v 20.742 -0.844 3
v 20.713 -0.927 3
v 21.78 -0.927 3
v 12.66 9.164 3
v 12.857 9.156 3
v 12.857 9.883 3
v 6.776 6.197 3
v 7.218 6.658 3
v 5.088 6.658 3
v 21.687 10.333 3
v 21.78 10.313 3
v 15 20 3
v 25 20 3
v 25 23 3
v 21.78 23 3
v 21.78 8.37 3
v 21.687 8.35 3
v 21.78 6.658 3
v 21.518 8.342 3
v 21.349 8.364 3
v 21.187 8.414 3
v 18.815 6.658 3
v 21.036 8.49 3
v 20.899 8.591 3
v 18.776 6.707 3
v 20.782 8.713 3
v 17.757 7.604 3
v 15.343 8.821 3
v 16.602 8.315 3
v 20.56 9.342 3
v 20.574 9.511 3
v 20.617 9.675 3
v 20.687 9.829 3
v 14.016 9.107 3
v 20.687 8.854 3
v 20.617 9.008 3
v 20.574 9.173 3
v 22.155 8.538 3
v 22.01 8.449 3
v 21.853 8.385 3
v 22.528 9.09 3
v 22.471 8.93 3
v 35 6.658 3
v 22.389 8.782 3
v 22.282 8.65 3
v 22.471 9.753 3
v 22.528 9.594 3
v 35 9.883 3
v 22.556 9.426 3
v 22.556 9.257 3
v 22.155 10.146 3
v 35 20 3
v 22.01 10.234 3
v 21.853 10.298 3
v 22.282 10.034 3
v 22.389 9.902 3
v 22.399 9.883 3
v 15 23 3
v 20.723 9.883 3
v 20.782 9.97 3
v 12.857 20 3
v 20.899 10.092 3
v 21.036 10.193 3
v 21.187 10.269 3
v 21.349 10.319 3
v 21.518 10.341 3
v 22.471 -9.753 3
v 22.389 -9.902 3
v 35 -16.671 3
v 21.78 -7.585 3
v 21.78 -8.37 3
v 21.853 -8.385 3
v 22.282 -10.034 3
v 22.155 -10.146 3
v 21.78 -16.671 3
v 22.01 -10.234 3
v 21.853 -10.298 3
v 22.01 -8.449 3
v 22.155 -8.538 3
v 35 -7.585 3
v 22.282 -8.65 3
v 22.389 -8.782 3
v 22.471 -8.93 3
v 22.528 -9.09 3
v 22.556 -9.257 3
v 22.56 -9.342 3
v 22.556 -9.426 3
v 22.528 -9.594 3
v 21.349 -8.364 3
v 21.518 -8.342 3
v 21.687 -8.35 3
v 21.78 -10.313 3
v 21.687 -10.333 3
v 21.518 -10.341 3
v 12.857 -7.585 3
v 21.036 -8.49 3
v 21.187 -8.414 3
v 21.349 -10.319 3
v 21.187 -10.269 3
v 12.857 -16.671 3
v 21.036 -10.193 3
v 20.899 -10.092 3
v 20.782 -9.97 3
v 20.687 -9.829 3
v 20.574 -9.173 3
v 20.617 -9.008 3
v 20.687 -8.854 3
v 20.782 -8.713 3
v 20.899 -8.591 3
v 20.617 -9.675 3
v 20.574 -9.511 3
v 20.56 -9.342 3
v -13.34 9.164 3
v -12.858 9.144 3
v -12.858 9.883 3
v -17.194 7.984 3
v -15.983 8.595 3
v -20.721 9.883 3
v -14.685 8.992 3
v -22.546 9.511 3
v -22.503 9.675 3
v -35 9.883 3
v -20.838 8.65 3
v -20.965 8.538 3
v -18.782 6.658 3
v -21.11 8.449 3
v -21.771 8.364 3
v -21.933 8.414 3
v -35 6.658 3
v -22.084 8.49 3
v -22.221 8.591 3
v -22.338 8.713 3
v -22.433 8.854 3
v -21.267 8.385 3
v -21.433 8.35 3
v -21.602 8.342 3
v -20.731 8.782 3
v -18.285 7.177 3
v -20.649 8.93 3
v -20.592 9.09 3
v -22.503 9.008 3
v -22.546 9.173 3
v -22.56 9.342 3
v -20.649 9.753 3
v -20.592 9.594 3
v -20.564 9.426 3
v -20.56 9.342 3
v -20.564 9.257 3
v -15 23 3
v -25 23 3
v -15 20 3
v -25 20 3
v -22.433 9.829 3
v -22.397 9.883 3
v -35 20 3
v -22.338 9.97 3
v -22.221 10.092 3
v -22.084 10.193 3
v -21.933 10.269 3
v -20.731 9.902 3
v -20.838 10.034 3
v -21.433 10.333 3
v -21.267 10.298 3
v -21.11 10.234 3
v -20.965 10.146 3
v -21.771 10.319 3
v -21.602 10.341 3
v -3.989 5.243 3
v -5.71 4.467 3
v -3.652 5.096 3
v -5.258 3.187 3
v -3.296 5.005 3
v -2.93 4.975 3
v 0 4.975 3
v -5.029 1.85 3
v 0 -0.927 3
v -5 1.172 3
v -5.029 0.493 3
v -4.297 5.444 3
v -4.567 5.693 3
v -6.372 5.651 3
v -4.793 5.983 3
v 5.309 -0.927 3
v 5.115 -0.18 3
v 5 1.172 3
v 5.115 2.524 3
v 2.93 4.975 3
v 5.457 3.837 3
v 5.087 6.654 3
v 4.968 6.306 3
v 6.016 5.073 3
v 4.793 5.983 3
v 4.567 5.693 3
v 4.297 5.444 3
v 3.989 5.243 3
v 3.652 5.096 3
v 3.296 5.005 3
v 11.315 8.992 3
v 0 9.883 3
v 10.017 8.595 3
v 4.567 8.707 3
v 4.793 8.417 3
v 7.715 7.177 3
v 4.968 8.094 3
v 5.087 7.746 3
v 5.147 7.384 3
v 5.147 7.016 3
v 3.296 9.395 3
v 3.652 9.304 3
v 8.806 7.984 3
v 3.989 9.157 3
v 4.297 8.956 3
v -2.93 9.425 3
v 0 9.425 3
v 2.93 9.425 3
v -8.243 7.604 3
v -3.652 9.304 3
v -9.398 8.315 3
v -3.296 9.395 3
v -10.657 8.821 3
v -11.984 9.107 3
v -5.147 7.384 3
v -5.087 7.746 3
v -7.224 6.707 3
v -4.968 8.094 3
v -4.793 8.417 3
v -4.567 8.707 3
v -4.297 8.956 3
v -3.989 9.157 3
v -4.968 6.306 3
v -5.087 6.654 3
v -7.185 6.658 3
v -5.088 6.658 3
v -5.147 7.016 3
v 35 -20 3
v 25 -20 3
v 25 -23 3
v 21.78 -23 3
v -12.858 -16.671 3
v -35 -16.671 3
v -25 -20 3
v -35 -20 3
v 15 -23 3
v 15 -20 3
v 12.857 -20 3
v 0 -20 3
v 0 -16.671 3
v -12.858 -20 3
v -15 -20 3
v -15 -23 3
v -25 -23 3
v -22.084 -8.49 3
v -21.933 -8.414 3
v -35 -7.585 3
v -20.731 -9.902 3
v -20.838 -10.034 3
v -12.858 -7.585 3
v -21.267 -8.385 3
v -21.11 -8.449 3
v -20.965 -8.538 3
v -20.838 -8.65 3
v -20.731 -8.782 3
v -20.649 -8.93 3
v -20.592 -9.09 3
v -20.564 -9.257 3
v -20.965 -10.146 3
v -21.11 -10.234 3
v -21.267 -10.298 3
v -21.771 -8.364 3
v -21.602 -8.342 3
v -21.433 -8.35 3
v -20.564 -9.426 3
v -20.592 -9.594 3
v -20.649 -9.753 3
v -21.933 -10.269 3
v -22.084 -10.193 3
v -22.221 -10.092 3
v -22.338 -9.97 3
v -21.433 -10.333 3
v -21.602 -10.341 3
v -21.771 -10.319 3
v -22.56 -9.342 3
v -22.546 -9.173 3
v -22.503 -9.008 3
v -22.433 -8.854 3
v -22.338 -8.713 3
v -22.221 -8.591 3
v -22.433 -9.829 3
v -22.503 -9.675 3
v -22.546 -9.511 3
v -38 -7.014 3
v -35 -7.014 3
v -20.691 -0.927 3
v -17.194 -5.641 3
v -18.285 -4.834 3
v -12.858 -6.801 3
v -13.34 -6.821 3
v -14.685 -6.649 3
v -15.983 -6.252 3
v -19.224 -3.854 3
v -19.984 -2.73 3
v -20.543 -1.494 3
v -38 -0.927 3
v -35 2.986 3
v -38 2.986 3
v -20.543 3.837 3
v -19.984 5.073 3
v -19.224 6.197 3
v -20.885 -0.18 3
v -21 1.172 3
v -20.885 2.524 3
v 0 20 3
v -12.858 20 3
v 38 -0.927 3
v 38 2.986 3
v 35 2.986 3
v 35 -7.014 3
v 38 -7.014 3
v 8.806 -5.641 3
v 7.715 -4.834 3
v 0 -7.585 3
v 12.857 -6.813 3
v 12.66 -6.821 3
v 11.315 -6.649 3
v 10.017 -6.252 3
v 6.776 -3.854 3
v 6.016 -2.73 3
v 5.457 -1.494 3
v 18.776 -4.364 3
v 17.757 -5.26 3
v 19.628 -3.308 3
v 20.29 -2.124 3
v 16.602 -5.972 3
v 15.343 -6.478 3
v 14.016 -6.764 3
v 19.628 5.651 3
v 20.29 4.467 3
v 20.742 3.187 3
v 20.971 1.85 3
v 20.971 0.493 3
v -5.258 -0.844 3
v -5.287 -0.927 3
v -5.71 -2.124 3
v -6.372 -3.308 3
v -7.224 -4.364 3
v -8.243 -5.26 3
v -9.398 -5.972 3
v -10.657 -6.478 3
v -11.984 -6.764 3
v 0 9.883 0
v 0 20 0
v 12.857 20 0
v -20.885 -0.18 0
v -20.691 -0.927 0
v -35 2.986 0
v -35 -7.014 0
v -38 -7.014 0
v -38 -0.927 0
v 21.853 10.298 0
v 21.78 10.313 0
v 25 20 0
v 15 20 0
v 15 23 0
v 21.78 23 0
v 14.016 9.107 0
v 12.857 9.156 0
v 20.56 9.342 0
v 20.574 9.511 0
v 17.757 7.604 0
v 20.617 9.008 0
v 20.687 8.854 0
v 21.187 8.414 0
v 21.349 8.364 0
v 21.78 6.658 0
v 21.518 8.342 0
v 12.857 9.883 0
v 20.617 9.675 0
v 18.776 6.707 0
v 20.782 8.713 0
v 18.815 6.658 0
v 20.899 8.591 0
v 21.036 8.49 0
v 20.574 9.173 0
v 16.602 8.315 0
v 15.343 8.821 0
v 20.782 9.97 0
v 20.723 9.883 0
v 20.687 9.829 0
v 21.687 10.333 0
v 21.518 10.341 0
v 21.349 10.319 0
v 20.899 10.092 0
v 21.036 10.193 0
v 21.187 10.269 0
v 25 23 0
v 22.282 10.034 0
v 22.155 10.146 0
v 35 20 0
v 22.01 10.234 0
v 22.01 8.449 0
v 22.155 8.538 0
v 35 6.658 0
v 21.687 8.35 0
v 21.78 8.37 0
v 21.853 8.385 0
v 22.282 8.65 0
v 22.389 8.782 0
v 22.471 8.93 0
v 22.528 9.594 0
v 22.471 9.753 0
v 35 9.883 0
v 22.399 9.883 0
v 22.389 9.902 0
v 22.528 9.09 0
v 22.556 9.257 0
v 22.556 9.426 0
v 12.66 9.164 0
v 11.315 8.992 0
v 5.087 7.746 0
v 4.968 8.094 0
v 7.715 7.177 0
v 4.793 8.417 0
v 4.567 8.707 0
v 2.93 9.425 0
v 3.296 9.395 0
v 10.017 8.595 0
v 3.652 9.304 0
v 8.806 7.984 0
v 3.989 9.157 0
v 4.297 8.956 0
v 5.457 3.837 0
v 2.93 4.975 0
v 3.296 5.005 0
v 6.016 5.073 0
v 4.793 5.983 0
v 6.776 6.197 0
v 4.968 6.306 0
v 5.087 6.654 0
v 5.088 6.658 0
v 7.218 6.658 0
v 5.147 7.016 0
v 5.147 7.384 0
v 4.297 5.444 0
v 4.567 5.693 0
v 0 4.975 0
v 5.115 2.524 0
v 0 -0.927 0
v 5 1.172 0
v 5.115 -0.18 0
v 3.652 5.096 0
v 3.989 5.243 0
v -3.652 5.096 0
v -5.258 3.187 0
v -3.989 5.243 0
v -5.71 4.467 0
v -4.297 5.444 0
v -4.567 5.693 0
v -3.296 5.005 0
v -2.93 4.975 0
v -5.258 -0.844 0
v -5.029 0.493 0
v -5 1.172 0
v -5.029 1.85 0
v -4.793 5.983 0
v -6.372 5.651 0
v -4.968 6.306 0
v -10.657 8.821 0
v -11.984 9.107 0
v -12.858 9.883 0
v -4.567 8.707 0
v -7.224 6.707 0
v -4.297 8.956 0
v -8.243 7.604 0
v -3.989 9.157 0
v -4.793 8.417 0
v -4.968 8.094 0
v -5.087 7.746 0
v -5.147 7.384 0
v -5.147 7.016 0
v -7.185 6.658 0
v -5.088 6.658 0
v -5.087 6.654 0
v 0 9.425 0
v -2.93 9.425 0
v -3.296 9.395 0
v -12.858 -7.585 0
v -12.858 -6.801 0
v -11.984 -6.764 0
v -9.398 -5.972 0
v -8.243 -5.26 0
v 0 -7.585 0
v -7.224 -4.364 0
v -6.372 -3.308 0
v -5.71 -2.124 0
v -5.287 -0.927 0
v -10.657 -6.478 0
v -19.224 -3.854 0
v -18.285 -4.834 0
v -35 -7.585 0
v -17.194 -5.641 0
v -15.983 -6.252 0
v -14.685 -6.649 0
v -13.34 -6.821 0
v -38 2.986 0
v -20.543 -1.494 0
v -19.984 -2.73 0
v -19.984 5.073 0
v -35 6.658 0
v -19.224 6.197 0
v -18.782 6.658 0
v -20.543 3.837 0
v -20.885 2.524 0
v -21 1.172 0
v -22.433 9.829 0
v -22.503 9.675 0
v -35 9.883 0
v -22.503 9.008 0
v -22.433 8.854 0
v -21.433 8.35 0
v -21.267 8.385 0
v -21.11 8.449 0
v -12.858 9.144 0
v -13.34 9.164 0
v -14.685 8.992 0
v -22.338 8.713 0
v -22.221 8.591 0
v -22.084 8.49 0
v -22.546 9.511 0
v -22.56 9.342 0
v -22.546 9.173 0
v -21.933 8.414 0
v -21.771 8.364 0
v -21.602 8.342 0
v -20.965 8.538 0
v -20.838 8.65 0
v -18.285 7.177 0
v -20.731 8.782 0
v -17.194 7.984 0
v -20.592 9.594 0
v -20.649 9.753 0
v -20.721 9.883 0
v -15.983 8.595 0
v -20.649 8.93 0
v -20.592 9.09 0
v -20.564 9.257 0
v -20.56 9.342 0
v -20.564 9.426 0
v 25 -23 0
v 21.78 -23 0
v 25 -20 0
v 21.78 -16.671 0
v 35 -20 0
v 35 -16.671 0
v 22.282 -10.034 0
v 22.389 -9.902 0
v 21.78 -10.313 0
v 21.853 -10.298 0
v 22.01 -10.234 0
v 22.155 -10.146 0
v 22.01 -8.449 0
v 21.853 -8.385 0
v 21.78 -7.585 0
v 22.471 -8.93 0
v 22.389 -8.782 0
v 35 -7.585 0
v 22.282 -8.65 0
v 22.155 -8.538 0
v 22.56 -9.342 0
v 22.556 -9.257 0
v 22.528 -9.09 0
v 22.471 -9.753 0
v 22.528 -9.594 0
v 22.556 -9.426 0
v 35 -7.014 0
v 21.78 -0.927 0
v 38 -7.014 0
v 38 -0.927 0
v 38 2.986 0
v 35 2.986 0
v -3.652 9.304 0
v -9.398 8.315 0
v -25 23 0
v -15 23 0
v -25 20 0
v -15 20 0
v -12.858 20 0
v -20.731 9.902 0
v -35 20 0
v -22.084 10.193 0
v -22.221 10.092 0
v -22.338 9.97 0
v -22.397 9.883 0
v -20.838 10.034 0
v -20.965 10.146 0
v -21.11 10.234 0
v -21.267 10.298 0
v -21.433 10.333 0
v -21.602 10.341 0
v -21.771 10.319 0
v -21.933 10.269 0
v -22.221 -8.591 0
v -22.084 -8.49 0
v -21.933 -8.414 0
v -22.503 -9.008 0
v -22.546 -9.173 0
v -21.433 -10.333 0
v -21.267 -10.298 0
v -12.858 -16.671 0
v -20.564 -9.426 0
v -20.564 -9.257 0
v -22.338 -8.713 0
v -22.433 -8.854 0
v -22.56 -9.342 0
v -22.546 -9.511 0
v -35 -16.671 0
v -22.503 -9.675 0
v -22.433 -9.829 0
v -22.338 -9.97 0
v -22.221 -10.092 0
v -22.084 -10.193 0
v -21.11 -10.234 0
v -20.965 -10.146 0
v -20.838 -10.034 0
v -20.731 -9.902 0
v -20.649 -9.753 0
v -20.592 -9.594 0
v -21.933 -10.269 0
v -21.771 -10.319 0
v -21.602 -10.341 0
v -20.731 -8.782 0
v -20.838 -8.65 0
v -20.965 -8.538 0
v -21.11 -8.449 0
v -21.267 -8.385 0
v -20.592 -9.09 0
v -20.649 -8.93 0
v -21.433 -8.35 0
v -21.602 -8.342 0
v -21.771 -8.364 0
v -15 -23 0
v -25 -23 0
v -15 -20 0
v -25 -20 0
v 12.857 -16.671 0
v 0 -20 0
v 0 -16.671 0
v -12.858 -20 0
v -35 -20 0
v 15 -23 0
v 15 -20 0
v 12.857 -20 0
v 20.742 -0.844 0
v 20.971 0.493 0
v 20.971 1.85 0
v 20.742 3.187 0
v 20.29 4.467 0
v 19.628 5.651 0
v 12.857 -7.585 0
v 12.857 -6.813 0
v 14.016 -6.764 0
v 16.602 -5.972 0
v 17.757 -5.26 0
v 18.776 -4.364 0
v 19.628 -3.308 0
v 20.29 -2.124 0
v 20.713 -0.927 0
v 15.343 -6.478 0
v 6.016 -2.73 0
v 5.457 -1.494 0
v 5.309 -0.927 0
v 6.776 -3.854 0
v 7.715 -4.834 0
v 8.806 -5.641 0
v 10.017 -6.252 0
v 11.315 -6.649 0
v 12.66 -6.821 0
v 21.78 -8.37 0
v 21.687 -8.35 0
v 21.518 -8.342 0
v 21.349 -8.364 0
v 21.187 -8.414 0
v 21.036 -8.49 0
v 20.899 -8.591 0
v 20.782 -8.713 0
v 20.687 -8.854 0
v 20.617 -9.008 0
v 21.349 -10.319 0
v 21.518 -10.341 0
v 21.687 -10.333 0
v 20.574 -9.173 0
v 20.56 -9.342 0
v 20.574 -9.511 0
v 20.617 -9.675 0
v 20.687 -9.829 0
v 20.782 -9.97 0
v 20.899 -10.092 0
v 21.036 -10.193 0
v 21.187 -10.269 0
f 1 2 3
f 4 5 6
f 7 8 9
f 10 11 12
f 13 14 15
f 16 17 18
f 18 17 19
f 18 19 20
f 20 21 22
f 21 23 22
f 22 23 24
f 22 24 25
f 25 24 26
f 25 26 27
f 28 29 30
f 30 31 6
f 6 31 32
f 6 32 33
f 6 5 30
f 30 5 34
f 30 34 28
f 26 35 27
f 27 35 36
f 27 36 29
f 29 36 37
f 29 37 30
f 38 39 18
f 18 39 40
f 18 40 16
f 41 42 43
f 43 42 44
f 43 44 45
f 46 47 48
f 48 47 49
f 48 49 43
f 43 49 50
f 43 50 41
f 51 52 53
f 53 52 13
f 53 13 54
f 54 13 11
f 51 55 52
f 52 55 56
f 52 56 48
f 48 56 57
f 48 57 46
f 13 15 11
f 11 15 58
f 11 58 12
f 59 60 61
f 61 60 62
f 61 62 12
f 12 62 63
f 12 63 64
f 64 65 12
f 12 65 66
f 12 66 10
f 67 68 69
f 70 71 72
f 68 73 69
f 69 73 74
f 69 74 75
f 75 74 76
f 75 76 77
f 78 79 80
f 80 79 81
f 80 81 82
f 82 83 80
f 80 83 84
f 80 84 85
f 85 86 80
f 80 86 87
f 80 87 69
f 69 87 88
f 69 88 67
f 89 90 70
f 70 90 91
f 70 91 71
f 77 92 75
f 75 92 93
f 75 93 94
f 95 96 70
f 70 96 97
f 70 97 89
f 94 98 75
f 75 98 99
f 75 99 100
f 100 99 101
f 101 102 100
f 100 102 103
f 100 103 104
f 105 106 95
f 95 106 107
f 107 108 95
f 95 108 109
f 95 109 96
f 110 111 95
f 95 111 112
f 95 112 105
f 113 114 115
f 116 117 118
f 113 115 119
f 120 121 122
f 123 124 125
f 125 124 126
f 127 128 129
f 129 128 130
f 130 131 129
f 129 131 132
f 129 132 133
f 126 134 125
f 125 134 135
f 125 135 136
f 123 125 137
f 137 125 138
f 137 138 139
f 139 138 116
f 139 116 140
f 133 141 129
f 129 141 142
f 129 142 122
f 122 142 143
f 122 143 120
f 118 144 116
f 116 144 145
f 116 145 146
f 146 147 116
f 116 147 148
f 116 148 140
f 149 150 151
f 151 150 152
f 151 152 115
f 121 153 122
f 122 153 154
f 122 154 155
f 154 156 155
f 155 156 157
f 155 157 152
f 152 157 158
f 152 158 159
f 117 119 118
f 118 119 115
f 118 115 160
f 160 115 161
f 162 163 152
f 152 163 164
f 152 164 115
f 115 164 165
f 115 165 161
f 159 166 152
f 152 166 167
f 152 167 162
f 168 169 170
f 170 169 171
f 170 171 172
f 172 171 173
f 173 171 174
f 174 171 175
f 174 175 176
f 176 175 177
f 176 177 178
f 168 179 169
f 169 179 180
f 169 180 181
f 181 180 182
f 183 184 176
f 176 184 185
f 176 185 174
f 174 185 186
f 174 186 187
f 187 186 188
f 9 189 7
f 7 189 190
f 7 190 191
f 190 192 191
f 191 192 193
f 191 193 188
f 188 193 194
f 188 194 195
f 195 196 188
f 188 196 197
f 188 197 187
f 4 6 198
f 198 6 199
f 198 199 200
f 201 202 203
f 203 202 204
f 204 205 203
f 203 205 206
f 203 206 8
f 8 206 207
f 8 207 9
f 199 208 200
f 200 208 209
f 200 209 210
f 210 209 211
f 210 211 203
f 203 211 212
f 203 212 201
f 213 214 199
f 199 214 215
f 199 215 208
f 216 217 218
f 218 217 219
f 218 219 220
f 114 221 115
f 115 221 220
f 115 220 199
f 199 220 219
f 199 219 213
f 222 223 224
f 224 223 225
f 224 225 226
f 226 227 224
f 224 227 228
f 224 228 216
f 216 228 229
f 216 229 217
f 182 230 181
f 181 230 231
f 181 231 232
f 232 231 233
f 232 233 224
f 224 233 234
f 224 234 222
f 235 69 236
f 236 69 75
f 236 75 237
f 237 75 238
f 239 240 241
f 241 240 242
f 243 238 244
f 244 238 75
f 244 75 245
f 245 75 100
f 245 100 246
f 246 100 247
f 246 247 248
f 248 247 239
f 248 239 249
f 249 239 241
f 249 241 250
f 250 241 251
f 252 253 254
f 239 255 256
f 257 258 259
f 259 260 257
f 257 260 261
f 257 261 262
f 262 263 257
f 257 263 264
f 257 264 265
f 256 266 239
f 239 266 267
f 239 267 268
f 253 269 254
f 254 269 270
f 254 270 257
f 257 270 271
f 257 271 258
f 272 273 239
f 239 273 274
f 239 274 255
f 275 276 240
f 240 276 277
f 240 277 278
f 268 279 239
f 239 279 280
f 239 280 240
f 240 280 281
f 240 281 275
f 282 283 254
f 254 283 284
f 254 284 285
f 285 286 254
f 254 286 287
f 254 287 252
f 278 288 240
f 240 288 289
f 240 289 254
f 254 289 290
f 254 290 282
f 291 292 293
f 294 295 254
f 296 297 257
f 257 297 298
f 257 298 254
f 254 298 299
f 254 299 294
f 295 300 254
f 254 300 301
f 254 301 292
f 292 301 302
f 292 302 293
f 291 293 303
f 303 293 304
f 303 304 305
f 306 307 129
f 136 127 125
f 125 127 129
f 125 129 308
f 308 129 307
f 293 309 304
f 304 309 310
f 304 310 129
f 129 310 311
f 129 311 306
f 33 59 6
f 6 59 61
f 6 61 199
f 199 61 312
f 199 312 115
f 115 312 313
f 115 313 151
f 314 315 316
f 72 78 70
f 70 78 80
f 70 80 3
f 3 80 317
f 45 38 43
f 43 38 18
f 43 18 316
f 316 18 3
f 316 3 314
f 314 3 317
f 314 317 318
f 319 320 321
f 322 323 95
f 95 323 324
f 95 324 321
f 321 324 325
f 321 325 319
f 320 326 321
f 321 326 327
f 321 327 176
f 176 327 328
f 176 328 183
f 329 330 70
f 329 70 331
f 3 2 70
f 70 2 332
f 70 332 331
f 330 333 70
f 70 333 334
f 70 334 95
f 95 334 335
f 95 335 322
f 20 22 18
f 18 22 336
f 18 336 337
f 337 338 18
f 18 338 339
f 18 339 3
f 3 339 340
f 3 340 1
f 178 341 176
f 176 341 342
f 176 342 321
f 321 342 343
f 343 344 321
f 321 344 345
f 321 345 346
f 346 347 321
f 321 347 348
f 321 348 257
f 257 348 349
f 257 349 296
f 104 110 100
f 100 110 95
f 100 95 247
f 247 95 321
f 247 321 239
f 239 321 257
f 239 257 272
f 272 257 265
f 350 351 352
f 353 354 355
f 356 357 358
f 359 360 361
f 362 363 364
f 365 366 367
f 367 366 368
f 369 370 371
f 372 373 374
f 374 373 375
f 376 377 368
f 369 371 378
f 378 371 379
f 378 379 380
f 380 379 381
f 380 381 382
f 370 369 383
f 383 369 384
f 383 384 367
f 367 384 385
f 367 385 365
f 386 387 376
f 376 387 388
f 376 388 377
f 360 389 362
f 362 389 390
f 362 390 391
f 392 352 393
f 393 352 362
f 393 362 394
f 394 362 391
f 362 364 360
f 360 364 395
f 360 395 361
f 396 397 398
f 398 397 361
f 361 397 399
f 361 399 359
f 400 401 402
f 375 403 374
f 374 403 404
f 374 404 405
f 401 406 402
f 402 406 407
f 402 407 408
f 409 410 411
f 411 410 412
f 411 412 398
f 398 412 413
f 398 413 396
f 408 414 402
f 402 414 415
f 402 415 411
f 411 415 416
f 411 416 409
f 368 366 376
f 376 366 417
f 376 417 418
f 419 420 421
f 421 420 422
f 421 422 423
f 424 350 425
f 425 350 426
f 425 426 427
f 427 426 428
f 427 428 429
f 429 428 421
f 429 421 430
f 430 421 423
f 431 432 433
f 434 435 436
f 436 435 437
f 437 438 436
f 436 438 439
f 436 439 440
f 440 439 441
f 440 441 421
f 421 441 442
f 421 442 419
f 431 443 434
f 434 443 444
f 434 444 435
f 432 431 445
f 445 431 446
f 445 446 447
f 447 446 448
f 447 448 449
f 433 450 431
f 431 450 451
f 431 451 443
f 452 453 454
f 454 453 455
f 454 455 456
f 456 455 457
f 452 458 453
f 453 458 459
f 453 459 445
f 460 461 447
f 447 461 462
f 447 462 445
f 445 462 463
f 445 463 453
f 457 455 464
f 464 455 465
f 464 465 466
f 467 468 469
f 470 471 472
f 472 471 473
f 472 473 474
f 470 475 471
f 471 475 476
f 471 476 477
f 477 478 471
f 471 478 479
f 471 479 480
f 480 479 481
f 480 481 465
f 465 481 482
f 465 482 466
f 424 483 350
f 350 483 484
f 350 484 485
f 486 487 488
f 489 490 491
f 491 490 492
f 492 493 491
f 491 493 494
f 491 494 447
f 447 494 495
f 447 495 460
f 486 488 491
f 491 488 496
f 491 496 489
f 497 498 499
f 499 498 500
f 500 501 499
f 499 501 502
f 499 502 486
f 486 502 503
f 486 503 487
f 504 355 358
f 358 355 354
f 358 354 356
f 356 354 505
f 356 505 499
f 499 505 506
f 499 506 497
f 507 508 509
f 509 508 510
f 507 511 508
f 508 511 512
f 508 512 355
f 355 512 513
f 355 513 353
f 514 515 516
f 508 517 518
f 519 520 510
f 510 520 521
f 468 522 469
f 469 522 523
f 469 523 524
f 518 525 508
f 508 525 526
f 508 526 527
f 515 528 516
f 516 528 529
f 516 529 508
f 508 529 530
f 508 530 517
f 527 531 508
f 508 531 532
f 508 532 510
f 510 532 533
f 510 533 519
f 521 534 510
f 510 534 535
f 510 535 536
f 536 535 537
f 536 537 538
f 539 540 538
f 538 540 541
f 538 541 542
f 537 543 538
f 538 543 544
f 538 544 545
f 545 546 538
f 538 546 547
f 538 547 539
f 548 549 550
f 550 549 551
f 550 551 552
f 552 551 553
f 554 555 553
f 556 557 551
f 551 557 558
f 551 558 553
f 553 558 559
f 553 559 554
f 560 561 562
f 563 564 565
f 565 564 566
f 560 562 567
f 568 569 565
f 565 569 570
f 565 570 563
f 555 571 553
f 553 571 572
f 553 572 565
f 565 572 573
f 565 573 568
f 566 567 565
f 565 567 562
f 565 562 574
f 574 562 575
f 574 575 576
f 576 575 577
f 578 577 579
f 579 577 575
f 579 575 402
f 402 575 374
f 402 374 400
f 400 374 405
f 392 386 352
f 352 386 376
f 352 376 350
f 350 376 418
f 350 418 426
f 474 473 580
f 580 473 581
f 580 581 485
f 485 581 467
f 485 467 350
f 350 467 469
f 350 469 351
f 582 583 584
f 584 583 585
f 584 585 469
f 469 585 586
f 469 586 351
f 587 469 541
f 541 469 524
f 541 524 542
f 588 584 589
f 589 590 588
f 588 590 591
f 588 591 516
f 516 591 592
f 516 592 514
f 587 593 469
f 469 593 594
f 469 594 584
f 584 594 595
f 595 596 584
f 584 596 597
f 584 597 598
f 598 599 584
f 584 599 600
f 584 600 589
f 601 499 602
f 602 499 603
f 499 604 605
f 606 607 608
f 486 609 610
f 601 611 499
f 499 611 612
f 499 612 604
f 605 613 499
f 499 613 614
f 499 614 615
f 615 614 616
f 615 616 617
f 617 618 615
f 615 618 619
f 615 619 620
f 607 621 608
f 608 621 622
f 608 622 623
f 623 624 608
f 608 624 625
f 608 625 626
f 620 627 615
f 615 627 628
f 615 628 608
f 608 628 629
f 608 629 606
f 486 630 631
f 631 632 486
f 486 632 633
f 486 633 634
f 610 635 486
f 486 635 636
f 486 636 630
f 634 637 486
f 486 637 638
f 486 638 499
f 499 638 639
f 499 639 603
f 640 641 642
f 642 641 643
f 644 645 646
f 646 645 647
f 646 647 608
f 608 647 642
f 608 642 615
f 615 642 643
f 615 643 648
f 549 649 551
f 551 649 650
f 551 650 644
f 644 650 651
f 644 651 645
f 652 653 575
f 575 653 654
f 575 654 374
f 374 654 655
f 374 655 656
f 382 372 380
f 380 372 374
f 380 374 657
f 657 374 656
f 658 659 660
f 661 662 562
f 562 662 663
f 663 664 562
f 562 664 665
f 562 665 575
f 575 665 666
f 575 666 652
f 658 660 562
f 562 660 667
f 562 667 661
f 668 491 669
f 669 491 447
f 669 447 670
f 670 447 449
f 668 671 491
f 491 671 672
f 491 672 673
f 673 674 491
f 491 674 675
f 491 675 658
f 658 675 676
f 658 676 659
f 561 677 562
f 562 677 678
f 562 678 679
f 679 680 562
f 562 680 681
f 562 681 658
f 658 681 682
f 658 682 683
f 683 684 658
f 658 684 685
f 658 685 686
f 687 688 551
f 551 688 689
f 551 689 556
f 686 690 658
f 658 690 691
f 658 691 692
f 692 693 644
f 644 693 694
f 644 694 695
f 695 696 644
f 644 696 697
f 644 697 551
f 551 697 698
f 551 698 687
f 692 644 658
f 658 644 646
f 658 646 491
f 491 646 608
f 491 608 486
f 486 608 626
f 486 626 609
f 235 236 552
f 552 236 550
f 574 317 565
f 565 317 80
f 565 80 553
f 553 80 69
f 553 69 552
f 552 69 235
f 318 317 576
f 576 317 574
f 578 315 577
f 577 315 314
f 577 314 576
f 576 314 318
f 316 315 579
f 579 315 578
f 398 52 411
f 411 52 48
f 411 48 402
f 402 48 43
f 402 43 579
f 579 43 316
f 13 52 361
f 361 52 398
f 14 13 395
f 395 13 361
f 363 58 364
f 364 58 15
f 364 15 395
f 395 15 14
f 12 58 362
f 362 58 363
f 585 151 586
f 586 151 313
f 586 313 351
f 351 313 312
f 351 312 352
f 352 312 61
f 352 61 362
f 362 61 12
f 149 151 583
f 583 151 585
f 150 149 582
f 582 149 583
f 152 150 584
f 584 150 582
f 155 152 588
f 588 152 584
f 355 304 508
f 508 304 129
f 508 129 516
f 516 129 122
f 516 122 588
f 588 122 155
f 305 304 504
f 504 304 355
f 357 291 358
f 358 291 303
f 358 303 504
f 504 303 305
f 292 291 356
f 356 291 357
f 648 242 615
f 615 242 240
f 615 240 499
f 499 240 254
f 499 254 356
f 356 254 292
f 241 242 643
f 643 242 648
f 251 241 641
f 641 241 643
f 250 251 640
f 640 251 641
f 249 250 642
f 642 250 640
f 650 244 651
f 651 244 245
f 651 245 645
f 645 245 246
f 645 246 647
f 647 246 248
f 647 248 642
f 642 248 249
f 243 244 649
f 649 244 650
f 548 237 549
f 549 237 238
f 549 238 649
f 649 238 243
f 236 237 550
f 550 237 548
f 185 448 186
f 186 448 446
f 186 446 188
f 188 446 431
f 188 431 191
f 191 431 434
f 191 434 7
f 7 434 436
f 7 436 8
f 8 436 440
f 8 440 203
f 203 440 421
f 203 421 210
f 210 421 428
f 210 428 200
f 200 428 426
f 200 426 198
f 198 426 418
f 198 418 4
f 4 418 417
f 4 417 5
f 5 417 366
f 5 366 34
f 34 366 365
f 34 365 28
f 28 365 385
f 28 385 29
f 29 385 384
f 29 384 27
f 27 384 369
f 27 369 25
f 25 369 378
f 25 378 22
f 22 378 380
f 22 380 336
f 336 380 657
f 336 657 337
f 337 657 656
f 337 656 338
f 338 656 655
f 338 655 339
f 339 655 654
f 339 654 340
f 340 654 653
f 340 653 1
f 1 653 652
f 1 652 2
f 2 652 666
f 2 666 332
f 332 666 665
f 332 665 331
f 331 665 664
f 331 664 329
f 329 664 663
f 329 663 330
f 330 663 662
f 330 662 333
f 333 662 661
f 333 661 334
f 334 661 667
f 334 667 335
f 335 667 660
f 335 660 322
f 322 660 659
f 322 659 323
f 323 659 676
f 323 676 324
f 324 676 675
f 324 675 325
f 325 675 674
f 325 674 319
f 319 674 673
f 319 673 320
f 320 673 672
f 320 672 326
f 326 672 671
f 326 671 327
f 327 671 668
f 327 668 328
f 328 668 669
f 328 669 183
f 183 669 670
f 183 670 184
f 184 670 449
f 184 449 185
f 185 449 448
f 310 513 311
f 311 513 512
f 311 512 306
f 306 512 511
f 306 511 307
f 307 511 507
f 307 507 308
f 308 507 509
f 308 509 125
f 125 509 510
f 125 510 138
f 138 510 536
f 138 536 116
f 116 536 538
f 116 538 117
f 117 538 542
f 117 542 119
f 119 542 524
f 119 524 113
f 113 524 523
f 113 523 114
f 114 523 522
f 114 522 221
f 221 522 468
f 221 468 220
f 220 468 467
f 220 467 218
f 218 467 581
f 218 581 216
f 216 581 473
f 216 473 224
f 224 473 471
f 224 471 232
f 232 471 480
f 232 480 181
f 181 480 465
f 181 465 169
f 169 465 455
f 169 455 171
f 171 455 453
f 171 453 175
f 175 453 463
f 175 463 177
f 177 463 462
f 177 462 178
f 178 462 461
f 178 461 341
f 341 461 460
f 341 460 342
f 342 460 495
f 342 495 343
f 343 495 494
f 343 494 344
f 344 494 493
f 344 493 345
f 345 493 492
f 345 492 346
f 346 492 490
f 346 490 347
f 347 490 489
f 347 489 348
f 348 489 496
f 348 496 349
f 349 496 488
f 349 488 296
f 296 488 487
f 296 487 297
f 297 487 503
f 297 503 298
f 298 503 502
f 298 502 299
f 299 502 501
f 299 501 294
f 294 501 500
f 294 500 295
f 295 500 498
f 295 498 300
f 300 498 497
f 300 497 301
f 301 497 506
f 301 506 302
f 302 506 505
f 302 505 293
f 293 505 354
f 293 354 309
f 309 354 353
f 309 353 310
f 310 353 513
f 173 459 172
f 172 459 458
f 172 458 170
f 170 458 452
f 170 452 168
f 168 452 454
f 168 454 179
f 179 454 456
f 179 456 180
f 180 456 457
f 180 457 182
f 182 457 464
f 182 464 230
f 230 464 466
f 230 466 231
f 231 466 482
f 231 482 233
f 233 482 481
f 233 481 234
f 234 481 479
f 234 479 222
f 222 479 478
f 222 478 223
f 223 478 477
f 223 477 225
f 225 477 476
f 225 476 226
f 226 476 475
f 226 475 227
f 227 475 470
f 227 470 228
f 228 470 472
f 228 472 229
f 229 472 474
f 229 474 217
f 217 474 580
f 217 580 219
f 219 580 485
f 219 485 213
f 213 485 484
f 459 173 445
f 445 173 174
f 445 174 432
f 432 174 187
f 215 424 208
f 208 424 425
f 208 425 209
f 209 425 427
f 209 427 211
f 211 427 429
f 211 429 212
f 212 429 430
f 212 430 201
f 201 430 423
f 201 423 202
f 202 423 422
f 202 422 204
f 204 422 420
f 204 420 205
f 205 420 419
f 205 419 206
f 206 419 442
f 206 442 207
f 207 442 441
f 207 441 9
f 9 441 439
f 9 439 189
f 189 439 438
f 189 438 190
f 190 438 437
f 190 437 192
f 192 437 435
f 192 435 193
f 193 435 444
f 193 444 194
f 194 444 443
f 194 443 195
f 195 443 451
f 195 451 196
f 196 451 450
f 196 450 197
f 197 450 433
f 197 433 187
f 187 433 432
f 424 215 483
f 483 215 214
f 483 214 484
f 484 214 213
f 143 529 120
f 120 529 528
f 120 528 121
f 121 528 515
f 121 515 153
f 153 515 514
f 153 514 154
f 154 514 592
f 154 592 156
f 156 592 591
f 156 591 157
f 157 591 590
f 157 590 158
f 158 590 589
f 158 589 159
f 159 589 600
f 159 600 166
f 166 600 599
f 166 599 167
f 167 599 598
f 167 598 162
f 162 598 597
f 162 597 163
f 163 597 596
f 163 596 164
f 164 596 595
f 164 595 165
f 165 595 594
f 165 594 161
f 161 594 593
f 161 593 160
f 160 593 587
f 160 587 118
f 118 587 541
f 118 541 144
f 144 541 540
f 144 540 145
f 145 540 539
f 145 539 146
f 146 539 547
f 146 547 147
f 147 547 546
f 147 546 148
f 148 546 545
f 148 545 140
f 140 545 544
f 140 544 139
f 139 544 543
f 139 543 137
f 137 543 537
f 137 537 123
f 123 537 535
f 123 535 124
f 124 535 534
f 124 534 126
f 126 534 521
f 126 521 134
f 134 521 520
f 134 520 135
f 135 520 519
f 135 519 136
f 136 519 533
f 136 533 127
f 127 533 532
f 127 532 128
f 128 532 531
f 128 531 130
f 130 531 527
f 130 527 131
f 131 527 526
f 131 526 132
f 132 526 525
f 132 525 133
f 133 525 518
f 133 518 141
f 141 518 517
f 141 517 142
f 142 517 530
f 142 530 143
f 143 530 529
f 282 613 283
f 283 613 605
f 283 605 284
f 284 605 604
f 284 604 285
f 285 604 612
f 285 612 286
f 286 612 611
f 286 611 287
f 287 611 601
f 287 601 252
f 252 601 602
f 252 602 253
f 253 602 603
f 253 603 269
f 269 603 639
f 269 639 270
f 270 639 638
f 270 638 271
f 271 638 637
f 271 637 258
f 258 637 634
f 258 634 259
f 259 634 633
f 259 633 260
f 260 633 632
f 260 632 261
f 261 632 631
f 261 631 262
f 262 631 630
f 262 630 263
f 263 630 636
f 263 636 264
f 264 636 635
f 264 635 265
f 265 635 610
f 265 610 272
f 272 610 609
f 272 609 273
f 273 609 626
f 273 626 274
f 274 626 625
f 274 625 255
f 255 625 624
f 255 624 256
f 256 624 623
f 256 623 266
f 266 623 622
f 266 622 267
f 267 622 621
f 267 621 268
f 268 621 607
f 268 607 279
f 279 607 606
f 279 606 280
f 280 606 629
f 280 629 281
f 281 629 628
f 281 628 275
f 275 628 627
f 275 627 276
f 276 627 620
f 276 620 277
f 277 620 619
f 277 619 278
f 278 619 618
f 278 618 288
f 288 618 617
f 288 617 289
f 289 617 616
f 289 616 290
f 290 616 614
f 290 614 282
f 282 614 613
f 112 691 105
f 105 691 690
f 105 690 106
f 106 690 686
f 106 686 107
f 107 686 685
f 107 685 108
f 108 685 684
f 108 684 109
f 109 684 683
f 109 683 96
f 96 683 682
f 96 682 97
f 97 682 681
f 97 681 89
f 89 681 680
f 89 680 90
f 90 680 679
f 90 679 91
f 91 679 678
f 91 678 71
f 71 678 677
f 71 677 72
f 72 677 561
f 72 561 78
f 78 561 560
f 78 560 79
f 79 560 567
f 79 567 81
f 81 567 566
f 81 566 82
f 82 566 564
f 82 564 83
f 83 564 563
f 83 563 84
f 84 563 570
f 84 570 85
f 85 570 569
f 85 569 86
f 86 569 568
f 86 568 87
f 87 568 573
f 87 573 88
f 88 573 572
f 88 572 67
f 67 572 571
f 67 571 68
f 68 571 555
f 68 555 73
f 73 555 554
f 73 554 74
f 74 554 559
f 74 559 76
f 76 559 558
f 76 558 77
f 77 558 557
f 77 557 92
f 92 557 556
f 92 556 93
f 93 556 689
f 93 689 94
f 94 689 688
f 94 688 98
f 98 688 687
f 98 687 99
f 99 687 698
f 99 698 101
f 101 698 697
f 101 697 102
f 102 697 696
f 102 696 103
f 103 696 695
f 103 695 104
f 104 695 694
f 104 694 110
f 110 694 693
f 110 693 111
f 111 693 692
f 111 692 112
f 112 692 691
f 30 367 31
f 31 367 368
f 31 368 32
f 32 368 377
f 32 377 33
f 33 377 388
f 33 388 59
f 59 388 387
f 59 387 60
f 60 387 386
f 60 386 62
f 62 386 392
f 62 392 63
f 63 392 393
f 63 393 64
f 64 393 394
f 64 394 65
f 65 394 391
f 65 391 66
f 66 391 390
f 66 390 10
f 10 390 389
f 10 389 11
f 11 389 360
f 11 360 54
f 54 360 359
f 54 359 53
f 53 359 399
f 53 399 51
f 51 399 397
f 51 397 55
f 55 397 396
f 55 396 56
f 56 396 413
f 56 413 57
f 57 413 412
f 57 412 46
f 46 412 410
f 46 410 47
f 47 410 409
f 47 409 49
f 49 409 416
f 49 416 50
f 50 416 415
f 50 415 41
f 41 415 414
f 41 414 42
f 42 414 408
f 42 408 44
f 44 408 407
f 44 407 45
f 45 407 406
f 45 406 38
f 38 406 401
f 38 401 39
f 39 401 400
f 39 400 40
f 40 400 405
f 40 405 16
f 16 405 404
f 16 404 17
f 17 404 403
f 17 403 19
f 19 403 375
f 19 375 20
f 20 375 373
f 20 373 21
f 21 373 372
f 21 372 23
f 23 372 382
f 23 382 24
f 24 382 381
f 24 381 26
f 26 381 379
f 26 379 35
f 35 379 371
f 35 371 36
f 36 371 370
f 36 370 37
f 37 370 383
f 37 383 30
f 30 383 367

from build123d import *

# Parameters (mm, degrees)
SKETCH_1_R      = 8
SKETCH_1_R_2    = 1
EXTRUDE_1_DEPTH = 3


with BuildPart() as part:
    # 草图1 → 凸台-拉伸1 (new body)
    with BuildSketch(Plane.XY):
        Polygon((-35, -7.01394437), (-35, -20), (-25, -20), (-25, -23), (-15, -23), (-15, -20), (15, -20), (15, -23), (25, -23), (25, -20), (35, -20), (35, -7.01394437), (38, -7.01394437), (38, 2.98605563), (35, 2.98605563), (35, 20), (25, 20), (25, 23), (15, 23), (15, 20), (-15, 20), (-15, 23), (-25, 23), (-25, 20), (-35, 20), (-35, 2.98605563), (-38, 2.98605563), (-38, -7.01394437), align=None)
        with Locations((-13, 1.171567705)):
            Circle(SKETCH_1_R, mode=Mode.SUBTRACT)
        with Locations(Location((13, 1.171567705, 0), (0, 0, 180))):
            Circle(SKETCH_1_R, mode=Mode.SUBTRACT)
        with Locations((-21.56, 9.341567705)):
            Circle(SKETCH_1_R_2, mode=Mode.SUBTRACT)
        with Locations(Location((-21.56, -9.341567705, 0), (0, 0, 180))):
            Circle(SKETCH_1_R_2, mode=Mode.SUBTRACT)
        with Locations((21.56, -9.341567705)):
            Circle(SKETCH_1_R_2, mode=Mode.SUBTRACT)
        with Locations(Location((21.56, 9.341567705, 0), (0, 0, 180))):
            Circle(SKETCH_1_R_2, mode=Mode.SUBTRACT)
        with BuildLine():
            Line((-2.93, 9.425), (2.93, 9.425))
            ThreePointArc((2.93, 9.425), (5.155, 7.2), (2.93, 4.975))
            Line((2.93, 4.975), (-2.93, 4.975))
            ThreePointArc((-2.93, 4.975), (-5.155, 7.2), (-2.93, 9.425))
        make_face(mode=Mode.SUBTRACT)
    extrude(amount=EXTRUDE_1_DEPTH)


solid = part.part
